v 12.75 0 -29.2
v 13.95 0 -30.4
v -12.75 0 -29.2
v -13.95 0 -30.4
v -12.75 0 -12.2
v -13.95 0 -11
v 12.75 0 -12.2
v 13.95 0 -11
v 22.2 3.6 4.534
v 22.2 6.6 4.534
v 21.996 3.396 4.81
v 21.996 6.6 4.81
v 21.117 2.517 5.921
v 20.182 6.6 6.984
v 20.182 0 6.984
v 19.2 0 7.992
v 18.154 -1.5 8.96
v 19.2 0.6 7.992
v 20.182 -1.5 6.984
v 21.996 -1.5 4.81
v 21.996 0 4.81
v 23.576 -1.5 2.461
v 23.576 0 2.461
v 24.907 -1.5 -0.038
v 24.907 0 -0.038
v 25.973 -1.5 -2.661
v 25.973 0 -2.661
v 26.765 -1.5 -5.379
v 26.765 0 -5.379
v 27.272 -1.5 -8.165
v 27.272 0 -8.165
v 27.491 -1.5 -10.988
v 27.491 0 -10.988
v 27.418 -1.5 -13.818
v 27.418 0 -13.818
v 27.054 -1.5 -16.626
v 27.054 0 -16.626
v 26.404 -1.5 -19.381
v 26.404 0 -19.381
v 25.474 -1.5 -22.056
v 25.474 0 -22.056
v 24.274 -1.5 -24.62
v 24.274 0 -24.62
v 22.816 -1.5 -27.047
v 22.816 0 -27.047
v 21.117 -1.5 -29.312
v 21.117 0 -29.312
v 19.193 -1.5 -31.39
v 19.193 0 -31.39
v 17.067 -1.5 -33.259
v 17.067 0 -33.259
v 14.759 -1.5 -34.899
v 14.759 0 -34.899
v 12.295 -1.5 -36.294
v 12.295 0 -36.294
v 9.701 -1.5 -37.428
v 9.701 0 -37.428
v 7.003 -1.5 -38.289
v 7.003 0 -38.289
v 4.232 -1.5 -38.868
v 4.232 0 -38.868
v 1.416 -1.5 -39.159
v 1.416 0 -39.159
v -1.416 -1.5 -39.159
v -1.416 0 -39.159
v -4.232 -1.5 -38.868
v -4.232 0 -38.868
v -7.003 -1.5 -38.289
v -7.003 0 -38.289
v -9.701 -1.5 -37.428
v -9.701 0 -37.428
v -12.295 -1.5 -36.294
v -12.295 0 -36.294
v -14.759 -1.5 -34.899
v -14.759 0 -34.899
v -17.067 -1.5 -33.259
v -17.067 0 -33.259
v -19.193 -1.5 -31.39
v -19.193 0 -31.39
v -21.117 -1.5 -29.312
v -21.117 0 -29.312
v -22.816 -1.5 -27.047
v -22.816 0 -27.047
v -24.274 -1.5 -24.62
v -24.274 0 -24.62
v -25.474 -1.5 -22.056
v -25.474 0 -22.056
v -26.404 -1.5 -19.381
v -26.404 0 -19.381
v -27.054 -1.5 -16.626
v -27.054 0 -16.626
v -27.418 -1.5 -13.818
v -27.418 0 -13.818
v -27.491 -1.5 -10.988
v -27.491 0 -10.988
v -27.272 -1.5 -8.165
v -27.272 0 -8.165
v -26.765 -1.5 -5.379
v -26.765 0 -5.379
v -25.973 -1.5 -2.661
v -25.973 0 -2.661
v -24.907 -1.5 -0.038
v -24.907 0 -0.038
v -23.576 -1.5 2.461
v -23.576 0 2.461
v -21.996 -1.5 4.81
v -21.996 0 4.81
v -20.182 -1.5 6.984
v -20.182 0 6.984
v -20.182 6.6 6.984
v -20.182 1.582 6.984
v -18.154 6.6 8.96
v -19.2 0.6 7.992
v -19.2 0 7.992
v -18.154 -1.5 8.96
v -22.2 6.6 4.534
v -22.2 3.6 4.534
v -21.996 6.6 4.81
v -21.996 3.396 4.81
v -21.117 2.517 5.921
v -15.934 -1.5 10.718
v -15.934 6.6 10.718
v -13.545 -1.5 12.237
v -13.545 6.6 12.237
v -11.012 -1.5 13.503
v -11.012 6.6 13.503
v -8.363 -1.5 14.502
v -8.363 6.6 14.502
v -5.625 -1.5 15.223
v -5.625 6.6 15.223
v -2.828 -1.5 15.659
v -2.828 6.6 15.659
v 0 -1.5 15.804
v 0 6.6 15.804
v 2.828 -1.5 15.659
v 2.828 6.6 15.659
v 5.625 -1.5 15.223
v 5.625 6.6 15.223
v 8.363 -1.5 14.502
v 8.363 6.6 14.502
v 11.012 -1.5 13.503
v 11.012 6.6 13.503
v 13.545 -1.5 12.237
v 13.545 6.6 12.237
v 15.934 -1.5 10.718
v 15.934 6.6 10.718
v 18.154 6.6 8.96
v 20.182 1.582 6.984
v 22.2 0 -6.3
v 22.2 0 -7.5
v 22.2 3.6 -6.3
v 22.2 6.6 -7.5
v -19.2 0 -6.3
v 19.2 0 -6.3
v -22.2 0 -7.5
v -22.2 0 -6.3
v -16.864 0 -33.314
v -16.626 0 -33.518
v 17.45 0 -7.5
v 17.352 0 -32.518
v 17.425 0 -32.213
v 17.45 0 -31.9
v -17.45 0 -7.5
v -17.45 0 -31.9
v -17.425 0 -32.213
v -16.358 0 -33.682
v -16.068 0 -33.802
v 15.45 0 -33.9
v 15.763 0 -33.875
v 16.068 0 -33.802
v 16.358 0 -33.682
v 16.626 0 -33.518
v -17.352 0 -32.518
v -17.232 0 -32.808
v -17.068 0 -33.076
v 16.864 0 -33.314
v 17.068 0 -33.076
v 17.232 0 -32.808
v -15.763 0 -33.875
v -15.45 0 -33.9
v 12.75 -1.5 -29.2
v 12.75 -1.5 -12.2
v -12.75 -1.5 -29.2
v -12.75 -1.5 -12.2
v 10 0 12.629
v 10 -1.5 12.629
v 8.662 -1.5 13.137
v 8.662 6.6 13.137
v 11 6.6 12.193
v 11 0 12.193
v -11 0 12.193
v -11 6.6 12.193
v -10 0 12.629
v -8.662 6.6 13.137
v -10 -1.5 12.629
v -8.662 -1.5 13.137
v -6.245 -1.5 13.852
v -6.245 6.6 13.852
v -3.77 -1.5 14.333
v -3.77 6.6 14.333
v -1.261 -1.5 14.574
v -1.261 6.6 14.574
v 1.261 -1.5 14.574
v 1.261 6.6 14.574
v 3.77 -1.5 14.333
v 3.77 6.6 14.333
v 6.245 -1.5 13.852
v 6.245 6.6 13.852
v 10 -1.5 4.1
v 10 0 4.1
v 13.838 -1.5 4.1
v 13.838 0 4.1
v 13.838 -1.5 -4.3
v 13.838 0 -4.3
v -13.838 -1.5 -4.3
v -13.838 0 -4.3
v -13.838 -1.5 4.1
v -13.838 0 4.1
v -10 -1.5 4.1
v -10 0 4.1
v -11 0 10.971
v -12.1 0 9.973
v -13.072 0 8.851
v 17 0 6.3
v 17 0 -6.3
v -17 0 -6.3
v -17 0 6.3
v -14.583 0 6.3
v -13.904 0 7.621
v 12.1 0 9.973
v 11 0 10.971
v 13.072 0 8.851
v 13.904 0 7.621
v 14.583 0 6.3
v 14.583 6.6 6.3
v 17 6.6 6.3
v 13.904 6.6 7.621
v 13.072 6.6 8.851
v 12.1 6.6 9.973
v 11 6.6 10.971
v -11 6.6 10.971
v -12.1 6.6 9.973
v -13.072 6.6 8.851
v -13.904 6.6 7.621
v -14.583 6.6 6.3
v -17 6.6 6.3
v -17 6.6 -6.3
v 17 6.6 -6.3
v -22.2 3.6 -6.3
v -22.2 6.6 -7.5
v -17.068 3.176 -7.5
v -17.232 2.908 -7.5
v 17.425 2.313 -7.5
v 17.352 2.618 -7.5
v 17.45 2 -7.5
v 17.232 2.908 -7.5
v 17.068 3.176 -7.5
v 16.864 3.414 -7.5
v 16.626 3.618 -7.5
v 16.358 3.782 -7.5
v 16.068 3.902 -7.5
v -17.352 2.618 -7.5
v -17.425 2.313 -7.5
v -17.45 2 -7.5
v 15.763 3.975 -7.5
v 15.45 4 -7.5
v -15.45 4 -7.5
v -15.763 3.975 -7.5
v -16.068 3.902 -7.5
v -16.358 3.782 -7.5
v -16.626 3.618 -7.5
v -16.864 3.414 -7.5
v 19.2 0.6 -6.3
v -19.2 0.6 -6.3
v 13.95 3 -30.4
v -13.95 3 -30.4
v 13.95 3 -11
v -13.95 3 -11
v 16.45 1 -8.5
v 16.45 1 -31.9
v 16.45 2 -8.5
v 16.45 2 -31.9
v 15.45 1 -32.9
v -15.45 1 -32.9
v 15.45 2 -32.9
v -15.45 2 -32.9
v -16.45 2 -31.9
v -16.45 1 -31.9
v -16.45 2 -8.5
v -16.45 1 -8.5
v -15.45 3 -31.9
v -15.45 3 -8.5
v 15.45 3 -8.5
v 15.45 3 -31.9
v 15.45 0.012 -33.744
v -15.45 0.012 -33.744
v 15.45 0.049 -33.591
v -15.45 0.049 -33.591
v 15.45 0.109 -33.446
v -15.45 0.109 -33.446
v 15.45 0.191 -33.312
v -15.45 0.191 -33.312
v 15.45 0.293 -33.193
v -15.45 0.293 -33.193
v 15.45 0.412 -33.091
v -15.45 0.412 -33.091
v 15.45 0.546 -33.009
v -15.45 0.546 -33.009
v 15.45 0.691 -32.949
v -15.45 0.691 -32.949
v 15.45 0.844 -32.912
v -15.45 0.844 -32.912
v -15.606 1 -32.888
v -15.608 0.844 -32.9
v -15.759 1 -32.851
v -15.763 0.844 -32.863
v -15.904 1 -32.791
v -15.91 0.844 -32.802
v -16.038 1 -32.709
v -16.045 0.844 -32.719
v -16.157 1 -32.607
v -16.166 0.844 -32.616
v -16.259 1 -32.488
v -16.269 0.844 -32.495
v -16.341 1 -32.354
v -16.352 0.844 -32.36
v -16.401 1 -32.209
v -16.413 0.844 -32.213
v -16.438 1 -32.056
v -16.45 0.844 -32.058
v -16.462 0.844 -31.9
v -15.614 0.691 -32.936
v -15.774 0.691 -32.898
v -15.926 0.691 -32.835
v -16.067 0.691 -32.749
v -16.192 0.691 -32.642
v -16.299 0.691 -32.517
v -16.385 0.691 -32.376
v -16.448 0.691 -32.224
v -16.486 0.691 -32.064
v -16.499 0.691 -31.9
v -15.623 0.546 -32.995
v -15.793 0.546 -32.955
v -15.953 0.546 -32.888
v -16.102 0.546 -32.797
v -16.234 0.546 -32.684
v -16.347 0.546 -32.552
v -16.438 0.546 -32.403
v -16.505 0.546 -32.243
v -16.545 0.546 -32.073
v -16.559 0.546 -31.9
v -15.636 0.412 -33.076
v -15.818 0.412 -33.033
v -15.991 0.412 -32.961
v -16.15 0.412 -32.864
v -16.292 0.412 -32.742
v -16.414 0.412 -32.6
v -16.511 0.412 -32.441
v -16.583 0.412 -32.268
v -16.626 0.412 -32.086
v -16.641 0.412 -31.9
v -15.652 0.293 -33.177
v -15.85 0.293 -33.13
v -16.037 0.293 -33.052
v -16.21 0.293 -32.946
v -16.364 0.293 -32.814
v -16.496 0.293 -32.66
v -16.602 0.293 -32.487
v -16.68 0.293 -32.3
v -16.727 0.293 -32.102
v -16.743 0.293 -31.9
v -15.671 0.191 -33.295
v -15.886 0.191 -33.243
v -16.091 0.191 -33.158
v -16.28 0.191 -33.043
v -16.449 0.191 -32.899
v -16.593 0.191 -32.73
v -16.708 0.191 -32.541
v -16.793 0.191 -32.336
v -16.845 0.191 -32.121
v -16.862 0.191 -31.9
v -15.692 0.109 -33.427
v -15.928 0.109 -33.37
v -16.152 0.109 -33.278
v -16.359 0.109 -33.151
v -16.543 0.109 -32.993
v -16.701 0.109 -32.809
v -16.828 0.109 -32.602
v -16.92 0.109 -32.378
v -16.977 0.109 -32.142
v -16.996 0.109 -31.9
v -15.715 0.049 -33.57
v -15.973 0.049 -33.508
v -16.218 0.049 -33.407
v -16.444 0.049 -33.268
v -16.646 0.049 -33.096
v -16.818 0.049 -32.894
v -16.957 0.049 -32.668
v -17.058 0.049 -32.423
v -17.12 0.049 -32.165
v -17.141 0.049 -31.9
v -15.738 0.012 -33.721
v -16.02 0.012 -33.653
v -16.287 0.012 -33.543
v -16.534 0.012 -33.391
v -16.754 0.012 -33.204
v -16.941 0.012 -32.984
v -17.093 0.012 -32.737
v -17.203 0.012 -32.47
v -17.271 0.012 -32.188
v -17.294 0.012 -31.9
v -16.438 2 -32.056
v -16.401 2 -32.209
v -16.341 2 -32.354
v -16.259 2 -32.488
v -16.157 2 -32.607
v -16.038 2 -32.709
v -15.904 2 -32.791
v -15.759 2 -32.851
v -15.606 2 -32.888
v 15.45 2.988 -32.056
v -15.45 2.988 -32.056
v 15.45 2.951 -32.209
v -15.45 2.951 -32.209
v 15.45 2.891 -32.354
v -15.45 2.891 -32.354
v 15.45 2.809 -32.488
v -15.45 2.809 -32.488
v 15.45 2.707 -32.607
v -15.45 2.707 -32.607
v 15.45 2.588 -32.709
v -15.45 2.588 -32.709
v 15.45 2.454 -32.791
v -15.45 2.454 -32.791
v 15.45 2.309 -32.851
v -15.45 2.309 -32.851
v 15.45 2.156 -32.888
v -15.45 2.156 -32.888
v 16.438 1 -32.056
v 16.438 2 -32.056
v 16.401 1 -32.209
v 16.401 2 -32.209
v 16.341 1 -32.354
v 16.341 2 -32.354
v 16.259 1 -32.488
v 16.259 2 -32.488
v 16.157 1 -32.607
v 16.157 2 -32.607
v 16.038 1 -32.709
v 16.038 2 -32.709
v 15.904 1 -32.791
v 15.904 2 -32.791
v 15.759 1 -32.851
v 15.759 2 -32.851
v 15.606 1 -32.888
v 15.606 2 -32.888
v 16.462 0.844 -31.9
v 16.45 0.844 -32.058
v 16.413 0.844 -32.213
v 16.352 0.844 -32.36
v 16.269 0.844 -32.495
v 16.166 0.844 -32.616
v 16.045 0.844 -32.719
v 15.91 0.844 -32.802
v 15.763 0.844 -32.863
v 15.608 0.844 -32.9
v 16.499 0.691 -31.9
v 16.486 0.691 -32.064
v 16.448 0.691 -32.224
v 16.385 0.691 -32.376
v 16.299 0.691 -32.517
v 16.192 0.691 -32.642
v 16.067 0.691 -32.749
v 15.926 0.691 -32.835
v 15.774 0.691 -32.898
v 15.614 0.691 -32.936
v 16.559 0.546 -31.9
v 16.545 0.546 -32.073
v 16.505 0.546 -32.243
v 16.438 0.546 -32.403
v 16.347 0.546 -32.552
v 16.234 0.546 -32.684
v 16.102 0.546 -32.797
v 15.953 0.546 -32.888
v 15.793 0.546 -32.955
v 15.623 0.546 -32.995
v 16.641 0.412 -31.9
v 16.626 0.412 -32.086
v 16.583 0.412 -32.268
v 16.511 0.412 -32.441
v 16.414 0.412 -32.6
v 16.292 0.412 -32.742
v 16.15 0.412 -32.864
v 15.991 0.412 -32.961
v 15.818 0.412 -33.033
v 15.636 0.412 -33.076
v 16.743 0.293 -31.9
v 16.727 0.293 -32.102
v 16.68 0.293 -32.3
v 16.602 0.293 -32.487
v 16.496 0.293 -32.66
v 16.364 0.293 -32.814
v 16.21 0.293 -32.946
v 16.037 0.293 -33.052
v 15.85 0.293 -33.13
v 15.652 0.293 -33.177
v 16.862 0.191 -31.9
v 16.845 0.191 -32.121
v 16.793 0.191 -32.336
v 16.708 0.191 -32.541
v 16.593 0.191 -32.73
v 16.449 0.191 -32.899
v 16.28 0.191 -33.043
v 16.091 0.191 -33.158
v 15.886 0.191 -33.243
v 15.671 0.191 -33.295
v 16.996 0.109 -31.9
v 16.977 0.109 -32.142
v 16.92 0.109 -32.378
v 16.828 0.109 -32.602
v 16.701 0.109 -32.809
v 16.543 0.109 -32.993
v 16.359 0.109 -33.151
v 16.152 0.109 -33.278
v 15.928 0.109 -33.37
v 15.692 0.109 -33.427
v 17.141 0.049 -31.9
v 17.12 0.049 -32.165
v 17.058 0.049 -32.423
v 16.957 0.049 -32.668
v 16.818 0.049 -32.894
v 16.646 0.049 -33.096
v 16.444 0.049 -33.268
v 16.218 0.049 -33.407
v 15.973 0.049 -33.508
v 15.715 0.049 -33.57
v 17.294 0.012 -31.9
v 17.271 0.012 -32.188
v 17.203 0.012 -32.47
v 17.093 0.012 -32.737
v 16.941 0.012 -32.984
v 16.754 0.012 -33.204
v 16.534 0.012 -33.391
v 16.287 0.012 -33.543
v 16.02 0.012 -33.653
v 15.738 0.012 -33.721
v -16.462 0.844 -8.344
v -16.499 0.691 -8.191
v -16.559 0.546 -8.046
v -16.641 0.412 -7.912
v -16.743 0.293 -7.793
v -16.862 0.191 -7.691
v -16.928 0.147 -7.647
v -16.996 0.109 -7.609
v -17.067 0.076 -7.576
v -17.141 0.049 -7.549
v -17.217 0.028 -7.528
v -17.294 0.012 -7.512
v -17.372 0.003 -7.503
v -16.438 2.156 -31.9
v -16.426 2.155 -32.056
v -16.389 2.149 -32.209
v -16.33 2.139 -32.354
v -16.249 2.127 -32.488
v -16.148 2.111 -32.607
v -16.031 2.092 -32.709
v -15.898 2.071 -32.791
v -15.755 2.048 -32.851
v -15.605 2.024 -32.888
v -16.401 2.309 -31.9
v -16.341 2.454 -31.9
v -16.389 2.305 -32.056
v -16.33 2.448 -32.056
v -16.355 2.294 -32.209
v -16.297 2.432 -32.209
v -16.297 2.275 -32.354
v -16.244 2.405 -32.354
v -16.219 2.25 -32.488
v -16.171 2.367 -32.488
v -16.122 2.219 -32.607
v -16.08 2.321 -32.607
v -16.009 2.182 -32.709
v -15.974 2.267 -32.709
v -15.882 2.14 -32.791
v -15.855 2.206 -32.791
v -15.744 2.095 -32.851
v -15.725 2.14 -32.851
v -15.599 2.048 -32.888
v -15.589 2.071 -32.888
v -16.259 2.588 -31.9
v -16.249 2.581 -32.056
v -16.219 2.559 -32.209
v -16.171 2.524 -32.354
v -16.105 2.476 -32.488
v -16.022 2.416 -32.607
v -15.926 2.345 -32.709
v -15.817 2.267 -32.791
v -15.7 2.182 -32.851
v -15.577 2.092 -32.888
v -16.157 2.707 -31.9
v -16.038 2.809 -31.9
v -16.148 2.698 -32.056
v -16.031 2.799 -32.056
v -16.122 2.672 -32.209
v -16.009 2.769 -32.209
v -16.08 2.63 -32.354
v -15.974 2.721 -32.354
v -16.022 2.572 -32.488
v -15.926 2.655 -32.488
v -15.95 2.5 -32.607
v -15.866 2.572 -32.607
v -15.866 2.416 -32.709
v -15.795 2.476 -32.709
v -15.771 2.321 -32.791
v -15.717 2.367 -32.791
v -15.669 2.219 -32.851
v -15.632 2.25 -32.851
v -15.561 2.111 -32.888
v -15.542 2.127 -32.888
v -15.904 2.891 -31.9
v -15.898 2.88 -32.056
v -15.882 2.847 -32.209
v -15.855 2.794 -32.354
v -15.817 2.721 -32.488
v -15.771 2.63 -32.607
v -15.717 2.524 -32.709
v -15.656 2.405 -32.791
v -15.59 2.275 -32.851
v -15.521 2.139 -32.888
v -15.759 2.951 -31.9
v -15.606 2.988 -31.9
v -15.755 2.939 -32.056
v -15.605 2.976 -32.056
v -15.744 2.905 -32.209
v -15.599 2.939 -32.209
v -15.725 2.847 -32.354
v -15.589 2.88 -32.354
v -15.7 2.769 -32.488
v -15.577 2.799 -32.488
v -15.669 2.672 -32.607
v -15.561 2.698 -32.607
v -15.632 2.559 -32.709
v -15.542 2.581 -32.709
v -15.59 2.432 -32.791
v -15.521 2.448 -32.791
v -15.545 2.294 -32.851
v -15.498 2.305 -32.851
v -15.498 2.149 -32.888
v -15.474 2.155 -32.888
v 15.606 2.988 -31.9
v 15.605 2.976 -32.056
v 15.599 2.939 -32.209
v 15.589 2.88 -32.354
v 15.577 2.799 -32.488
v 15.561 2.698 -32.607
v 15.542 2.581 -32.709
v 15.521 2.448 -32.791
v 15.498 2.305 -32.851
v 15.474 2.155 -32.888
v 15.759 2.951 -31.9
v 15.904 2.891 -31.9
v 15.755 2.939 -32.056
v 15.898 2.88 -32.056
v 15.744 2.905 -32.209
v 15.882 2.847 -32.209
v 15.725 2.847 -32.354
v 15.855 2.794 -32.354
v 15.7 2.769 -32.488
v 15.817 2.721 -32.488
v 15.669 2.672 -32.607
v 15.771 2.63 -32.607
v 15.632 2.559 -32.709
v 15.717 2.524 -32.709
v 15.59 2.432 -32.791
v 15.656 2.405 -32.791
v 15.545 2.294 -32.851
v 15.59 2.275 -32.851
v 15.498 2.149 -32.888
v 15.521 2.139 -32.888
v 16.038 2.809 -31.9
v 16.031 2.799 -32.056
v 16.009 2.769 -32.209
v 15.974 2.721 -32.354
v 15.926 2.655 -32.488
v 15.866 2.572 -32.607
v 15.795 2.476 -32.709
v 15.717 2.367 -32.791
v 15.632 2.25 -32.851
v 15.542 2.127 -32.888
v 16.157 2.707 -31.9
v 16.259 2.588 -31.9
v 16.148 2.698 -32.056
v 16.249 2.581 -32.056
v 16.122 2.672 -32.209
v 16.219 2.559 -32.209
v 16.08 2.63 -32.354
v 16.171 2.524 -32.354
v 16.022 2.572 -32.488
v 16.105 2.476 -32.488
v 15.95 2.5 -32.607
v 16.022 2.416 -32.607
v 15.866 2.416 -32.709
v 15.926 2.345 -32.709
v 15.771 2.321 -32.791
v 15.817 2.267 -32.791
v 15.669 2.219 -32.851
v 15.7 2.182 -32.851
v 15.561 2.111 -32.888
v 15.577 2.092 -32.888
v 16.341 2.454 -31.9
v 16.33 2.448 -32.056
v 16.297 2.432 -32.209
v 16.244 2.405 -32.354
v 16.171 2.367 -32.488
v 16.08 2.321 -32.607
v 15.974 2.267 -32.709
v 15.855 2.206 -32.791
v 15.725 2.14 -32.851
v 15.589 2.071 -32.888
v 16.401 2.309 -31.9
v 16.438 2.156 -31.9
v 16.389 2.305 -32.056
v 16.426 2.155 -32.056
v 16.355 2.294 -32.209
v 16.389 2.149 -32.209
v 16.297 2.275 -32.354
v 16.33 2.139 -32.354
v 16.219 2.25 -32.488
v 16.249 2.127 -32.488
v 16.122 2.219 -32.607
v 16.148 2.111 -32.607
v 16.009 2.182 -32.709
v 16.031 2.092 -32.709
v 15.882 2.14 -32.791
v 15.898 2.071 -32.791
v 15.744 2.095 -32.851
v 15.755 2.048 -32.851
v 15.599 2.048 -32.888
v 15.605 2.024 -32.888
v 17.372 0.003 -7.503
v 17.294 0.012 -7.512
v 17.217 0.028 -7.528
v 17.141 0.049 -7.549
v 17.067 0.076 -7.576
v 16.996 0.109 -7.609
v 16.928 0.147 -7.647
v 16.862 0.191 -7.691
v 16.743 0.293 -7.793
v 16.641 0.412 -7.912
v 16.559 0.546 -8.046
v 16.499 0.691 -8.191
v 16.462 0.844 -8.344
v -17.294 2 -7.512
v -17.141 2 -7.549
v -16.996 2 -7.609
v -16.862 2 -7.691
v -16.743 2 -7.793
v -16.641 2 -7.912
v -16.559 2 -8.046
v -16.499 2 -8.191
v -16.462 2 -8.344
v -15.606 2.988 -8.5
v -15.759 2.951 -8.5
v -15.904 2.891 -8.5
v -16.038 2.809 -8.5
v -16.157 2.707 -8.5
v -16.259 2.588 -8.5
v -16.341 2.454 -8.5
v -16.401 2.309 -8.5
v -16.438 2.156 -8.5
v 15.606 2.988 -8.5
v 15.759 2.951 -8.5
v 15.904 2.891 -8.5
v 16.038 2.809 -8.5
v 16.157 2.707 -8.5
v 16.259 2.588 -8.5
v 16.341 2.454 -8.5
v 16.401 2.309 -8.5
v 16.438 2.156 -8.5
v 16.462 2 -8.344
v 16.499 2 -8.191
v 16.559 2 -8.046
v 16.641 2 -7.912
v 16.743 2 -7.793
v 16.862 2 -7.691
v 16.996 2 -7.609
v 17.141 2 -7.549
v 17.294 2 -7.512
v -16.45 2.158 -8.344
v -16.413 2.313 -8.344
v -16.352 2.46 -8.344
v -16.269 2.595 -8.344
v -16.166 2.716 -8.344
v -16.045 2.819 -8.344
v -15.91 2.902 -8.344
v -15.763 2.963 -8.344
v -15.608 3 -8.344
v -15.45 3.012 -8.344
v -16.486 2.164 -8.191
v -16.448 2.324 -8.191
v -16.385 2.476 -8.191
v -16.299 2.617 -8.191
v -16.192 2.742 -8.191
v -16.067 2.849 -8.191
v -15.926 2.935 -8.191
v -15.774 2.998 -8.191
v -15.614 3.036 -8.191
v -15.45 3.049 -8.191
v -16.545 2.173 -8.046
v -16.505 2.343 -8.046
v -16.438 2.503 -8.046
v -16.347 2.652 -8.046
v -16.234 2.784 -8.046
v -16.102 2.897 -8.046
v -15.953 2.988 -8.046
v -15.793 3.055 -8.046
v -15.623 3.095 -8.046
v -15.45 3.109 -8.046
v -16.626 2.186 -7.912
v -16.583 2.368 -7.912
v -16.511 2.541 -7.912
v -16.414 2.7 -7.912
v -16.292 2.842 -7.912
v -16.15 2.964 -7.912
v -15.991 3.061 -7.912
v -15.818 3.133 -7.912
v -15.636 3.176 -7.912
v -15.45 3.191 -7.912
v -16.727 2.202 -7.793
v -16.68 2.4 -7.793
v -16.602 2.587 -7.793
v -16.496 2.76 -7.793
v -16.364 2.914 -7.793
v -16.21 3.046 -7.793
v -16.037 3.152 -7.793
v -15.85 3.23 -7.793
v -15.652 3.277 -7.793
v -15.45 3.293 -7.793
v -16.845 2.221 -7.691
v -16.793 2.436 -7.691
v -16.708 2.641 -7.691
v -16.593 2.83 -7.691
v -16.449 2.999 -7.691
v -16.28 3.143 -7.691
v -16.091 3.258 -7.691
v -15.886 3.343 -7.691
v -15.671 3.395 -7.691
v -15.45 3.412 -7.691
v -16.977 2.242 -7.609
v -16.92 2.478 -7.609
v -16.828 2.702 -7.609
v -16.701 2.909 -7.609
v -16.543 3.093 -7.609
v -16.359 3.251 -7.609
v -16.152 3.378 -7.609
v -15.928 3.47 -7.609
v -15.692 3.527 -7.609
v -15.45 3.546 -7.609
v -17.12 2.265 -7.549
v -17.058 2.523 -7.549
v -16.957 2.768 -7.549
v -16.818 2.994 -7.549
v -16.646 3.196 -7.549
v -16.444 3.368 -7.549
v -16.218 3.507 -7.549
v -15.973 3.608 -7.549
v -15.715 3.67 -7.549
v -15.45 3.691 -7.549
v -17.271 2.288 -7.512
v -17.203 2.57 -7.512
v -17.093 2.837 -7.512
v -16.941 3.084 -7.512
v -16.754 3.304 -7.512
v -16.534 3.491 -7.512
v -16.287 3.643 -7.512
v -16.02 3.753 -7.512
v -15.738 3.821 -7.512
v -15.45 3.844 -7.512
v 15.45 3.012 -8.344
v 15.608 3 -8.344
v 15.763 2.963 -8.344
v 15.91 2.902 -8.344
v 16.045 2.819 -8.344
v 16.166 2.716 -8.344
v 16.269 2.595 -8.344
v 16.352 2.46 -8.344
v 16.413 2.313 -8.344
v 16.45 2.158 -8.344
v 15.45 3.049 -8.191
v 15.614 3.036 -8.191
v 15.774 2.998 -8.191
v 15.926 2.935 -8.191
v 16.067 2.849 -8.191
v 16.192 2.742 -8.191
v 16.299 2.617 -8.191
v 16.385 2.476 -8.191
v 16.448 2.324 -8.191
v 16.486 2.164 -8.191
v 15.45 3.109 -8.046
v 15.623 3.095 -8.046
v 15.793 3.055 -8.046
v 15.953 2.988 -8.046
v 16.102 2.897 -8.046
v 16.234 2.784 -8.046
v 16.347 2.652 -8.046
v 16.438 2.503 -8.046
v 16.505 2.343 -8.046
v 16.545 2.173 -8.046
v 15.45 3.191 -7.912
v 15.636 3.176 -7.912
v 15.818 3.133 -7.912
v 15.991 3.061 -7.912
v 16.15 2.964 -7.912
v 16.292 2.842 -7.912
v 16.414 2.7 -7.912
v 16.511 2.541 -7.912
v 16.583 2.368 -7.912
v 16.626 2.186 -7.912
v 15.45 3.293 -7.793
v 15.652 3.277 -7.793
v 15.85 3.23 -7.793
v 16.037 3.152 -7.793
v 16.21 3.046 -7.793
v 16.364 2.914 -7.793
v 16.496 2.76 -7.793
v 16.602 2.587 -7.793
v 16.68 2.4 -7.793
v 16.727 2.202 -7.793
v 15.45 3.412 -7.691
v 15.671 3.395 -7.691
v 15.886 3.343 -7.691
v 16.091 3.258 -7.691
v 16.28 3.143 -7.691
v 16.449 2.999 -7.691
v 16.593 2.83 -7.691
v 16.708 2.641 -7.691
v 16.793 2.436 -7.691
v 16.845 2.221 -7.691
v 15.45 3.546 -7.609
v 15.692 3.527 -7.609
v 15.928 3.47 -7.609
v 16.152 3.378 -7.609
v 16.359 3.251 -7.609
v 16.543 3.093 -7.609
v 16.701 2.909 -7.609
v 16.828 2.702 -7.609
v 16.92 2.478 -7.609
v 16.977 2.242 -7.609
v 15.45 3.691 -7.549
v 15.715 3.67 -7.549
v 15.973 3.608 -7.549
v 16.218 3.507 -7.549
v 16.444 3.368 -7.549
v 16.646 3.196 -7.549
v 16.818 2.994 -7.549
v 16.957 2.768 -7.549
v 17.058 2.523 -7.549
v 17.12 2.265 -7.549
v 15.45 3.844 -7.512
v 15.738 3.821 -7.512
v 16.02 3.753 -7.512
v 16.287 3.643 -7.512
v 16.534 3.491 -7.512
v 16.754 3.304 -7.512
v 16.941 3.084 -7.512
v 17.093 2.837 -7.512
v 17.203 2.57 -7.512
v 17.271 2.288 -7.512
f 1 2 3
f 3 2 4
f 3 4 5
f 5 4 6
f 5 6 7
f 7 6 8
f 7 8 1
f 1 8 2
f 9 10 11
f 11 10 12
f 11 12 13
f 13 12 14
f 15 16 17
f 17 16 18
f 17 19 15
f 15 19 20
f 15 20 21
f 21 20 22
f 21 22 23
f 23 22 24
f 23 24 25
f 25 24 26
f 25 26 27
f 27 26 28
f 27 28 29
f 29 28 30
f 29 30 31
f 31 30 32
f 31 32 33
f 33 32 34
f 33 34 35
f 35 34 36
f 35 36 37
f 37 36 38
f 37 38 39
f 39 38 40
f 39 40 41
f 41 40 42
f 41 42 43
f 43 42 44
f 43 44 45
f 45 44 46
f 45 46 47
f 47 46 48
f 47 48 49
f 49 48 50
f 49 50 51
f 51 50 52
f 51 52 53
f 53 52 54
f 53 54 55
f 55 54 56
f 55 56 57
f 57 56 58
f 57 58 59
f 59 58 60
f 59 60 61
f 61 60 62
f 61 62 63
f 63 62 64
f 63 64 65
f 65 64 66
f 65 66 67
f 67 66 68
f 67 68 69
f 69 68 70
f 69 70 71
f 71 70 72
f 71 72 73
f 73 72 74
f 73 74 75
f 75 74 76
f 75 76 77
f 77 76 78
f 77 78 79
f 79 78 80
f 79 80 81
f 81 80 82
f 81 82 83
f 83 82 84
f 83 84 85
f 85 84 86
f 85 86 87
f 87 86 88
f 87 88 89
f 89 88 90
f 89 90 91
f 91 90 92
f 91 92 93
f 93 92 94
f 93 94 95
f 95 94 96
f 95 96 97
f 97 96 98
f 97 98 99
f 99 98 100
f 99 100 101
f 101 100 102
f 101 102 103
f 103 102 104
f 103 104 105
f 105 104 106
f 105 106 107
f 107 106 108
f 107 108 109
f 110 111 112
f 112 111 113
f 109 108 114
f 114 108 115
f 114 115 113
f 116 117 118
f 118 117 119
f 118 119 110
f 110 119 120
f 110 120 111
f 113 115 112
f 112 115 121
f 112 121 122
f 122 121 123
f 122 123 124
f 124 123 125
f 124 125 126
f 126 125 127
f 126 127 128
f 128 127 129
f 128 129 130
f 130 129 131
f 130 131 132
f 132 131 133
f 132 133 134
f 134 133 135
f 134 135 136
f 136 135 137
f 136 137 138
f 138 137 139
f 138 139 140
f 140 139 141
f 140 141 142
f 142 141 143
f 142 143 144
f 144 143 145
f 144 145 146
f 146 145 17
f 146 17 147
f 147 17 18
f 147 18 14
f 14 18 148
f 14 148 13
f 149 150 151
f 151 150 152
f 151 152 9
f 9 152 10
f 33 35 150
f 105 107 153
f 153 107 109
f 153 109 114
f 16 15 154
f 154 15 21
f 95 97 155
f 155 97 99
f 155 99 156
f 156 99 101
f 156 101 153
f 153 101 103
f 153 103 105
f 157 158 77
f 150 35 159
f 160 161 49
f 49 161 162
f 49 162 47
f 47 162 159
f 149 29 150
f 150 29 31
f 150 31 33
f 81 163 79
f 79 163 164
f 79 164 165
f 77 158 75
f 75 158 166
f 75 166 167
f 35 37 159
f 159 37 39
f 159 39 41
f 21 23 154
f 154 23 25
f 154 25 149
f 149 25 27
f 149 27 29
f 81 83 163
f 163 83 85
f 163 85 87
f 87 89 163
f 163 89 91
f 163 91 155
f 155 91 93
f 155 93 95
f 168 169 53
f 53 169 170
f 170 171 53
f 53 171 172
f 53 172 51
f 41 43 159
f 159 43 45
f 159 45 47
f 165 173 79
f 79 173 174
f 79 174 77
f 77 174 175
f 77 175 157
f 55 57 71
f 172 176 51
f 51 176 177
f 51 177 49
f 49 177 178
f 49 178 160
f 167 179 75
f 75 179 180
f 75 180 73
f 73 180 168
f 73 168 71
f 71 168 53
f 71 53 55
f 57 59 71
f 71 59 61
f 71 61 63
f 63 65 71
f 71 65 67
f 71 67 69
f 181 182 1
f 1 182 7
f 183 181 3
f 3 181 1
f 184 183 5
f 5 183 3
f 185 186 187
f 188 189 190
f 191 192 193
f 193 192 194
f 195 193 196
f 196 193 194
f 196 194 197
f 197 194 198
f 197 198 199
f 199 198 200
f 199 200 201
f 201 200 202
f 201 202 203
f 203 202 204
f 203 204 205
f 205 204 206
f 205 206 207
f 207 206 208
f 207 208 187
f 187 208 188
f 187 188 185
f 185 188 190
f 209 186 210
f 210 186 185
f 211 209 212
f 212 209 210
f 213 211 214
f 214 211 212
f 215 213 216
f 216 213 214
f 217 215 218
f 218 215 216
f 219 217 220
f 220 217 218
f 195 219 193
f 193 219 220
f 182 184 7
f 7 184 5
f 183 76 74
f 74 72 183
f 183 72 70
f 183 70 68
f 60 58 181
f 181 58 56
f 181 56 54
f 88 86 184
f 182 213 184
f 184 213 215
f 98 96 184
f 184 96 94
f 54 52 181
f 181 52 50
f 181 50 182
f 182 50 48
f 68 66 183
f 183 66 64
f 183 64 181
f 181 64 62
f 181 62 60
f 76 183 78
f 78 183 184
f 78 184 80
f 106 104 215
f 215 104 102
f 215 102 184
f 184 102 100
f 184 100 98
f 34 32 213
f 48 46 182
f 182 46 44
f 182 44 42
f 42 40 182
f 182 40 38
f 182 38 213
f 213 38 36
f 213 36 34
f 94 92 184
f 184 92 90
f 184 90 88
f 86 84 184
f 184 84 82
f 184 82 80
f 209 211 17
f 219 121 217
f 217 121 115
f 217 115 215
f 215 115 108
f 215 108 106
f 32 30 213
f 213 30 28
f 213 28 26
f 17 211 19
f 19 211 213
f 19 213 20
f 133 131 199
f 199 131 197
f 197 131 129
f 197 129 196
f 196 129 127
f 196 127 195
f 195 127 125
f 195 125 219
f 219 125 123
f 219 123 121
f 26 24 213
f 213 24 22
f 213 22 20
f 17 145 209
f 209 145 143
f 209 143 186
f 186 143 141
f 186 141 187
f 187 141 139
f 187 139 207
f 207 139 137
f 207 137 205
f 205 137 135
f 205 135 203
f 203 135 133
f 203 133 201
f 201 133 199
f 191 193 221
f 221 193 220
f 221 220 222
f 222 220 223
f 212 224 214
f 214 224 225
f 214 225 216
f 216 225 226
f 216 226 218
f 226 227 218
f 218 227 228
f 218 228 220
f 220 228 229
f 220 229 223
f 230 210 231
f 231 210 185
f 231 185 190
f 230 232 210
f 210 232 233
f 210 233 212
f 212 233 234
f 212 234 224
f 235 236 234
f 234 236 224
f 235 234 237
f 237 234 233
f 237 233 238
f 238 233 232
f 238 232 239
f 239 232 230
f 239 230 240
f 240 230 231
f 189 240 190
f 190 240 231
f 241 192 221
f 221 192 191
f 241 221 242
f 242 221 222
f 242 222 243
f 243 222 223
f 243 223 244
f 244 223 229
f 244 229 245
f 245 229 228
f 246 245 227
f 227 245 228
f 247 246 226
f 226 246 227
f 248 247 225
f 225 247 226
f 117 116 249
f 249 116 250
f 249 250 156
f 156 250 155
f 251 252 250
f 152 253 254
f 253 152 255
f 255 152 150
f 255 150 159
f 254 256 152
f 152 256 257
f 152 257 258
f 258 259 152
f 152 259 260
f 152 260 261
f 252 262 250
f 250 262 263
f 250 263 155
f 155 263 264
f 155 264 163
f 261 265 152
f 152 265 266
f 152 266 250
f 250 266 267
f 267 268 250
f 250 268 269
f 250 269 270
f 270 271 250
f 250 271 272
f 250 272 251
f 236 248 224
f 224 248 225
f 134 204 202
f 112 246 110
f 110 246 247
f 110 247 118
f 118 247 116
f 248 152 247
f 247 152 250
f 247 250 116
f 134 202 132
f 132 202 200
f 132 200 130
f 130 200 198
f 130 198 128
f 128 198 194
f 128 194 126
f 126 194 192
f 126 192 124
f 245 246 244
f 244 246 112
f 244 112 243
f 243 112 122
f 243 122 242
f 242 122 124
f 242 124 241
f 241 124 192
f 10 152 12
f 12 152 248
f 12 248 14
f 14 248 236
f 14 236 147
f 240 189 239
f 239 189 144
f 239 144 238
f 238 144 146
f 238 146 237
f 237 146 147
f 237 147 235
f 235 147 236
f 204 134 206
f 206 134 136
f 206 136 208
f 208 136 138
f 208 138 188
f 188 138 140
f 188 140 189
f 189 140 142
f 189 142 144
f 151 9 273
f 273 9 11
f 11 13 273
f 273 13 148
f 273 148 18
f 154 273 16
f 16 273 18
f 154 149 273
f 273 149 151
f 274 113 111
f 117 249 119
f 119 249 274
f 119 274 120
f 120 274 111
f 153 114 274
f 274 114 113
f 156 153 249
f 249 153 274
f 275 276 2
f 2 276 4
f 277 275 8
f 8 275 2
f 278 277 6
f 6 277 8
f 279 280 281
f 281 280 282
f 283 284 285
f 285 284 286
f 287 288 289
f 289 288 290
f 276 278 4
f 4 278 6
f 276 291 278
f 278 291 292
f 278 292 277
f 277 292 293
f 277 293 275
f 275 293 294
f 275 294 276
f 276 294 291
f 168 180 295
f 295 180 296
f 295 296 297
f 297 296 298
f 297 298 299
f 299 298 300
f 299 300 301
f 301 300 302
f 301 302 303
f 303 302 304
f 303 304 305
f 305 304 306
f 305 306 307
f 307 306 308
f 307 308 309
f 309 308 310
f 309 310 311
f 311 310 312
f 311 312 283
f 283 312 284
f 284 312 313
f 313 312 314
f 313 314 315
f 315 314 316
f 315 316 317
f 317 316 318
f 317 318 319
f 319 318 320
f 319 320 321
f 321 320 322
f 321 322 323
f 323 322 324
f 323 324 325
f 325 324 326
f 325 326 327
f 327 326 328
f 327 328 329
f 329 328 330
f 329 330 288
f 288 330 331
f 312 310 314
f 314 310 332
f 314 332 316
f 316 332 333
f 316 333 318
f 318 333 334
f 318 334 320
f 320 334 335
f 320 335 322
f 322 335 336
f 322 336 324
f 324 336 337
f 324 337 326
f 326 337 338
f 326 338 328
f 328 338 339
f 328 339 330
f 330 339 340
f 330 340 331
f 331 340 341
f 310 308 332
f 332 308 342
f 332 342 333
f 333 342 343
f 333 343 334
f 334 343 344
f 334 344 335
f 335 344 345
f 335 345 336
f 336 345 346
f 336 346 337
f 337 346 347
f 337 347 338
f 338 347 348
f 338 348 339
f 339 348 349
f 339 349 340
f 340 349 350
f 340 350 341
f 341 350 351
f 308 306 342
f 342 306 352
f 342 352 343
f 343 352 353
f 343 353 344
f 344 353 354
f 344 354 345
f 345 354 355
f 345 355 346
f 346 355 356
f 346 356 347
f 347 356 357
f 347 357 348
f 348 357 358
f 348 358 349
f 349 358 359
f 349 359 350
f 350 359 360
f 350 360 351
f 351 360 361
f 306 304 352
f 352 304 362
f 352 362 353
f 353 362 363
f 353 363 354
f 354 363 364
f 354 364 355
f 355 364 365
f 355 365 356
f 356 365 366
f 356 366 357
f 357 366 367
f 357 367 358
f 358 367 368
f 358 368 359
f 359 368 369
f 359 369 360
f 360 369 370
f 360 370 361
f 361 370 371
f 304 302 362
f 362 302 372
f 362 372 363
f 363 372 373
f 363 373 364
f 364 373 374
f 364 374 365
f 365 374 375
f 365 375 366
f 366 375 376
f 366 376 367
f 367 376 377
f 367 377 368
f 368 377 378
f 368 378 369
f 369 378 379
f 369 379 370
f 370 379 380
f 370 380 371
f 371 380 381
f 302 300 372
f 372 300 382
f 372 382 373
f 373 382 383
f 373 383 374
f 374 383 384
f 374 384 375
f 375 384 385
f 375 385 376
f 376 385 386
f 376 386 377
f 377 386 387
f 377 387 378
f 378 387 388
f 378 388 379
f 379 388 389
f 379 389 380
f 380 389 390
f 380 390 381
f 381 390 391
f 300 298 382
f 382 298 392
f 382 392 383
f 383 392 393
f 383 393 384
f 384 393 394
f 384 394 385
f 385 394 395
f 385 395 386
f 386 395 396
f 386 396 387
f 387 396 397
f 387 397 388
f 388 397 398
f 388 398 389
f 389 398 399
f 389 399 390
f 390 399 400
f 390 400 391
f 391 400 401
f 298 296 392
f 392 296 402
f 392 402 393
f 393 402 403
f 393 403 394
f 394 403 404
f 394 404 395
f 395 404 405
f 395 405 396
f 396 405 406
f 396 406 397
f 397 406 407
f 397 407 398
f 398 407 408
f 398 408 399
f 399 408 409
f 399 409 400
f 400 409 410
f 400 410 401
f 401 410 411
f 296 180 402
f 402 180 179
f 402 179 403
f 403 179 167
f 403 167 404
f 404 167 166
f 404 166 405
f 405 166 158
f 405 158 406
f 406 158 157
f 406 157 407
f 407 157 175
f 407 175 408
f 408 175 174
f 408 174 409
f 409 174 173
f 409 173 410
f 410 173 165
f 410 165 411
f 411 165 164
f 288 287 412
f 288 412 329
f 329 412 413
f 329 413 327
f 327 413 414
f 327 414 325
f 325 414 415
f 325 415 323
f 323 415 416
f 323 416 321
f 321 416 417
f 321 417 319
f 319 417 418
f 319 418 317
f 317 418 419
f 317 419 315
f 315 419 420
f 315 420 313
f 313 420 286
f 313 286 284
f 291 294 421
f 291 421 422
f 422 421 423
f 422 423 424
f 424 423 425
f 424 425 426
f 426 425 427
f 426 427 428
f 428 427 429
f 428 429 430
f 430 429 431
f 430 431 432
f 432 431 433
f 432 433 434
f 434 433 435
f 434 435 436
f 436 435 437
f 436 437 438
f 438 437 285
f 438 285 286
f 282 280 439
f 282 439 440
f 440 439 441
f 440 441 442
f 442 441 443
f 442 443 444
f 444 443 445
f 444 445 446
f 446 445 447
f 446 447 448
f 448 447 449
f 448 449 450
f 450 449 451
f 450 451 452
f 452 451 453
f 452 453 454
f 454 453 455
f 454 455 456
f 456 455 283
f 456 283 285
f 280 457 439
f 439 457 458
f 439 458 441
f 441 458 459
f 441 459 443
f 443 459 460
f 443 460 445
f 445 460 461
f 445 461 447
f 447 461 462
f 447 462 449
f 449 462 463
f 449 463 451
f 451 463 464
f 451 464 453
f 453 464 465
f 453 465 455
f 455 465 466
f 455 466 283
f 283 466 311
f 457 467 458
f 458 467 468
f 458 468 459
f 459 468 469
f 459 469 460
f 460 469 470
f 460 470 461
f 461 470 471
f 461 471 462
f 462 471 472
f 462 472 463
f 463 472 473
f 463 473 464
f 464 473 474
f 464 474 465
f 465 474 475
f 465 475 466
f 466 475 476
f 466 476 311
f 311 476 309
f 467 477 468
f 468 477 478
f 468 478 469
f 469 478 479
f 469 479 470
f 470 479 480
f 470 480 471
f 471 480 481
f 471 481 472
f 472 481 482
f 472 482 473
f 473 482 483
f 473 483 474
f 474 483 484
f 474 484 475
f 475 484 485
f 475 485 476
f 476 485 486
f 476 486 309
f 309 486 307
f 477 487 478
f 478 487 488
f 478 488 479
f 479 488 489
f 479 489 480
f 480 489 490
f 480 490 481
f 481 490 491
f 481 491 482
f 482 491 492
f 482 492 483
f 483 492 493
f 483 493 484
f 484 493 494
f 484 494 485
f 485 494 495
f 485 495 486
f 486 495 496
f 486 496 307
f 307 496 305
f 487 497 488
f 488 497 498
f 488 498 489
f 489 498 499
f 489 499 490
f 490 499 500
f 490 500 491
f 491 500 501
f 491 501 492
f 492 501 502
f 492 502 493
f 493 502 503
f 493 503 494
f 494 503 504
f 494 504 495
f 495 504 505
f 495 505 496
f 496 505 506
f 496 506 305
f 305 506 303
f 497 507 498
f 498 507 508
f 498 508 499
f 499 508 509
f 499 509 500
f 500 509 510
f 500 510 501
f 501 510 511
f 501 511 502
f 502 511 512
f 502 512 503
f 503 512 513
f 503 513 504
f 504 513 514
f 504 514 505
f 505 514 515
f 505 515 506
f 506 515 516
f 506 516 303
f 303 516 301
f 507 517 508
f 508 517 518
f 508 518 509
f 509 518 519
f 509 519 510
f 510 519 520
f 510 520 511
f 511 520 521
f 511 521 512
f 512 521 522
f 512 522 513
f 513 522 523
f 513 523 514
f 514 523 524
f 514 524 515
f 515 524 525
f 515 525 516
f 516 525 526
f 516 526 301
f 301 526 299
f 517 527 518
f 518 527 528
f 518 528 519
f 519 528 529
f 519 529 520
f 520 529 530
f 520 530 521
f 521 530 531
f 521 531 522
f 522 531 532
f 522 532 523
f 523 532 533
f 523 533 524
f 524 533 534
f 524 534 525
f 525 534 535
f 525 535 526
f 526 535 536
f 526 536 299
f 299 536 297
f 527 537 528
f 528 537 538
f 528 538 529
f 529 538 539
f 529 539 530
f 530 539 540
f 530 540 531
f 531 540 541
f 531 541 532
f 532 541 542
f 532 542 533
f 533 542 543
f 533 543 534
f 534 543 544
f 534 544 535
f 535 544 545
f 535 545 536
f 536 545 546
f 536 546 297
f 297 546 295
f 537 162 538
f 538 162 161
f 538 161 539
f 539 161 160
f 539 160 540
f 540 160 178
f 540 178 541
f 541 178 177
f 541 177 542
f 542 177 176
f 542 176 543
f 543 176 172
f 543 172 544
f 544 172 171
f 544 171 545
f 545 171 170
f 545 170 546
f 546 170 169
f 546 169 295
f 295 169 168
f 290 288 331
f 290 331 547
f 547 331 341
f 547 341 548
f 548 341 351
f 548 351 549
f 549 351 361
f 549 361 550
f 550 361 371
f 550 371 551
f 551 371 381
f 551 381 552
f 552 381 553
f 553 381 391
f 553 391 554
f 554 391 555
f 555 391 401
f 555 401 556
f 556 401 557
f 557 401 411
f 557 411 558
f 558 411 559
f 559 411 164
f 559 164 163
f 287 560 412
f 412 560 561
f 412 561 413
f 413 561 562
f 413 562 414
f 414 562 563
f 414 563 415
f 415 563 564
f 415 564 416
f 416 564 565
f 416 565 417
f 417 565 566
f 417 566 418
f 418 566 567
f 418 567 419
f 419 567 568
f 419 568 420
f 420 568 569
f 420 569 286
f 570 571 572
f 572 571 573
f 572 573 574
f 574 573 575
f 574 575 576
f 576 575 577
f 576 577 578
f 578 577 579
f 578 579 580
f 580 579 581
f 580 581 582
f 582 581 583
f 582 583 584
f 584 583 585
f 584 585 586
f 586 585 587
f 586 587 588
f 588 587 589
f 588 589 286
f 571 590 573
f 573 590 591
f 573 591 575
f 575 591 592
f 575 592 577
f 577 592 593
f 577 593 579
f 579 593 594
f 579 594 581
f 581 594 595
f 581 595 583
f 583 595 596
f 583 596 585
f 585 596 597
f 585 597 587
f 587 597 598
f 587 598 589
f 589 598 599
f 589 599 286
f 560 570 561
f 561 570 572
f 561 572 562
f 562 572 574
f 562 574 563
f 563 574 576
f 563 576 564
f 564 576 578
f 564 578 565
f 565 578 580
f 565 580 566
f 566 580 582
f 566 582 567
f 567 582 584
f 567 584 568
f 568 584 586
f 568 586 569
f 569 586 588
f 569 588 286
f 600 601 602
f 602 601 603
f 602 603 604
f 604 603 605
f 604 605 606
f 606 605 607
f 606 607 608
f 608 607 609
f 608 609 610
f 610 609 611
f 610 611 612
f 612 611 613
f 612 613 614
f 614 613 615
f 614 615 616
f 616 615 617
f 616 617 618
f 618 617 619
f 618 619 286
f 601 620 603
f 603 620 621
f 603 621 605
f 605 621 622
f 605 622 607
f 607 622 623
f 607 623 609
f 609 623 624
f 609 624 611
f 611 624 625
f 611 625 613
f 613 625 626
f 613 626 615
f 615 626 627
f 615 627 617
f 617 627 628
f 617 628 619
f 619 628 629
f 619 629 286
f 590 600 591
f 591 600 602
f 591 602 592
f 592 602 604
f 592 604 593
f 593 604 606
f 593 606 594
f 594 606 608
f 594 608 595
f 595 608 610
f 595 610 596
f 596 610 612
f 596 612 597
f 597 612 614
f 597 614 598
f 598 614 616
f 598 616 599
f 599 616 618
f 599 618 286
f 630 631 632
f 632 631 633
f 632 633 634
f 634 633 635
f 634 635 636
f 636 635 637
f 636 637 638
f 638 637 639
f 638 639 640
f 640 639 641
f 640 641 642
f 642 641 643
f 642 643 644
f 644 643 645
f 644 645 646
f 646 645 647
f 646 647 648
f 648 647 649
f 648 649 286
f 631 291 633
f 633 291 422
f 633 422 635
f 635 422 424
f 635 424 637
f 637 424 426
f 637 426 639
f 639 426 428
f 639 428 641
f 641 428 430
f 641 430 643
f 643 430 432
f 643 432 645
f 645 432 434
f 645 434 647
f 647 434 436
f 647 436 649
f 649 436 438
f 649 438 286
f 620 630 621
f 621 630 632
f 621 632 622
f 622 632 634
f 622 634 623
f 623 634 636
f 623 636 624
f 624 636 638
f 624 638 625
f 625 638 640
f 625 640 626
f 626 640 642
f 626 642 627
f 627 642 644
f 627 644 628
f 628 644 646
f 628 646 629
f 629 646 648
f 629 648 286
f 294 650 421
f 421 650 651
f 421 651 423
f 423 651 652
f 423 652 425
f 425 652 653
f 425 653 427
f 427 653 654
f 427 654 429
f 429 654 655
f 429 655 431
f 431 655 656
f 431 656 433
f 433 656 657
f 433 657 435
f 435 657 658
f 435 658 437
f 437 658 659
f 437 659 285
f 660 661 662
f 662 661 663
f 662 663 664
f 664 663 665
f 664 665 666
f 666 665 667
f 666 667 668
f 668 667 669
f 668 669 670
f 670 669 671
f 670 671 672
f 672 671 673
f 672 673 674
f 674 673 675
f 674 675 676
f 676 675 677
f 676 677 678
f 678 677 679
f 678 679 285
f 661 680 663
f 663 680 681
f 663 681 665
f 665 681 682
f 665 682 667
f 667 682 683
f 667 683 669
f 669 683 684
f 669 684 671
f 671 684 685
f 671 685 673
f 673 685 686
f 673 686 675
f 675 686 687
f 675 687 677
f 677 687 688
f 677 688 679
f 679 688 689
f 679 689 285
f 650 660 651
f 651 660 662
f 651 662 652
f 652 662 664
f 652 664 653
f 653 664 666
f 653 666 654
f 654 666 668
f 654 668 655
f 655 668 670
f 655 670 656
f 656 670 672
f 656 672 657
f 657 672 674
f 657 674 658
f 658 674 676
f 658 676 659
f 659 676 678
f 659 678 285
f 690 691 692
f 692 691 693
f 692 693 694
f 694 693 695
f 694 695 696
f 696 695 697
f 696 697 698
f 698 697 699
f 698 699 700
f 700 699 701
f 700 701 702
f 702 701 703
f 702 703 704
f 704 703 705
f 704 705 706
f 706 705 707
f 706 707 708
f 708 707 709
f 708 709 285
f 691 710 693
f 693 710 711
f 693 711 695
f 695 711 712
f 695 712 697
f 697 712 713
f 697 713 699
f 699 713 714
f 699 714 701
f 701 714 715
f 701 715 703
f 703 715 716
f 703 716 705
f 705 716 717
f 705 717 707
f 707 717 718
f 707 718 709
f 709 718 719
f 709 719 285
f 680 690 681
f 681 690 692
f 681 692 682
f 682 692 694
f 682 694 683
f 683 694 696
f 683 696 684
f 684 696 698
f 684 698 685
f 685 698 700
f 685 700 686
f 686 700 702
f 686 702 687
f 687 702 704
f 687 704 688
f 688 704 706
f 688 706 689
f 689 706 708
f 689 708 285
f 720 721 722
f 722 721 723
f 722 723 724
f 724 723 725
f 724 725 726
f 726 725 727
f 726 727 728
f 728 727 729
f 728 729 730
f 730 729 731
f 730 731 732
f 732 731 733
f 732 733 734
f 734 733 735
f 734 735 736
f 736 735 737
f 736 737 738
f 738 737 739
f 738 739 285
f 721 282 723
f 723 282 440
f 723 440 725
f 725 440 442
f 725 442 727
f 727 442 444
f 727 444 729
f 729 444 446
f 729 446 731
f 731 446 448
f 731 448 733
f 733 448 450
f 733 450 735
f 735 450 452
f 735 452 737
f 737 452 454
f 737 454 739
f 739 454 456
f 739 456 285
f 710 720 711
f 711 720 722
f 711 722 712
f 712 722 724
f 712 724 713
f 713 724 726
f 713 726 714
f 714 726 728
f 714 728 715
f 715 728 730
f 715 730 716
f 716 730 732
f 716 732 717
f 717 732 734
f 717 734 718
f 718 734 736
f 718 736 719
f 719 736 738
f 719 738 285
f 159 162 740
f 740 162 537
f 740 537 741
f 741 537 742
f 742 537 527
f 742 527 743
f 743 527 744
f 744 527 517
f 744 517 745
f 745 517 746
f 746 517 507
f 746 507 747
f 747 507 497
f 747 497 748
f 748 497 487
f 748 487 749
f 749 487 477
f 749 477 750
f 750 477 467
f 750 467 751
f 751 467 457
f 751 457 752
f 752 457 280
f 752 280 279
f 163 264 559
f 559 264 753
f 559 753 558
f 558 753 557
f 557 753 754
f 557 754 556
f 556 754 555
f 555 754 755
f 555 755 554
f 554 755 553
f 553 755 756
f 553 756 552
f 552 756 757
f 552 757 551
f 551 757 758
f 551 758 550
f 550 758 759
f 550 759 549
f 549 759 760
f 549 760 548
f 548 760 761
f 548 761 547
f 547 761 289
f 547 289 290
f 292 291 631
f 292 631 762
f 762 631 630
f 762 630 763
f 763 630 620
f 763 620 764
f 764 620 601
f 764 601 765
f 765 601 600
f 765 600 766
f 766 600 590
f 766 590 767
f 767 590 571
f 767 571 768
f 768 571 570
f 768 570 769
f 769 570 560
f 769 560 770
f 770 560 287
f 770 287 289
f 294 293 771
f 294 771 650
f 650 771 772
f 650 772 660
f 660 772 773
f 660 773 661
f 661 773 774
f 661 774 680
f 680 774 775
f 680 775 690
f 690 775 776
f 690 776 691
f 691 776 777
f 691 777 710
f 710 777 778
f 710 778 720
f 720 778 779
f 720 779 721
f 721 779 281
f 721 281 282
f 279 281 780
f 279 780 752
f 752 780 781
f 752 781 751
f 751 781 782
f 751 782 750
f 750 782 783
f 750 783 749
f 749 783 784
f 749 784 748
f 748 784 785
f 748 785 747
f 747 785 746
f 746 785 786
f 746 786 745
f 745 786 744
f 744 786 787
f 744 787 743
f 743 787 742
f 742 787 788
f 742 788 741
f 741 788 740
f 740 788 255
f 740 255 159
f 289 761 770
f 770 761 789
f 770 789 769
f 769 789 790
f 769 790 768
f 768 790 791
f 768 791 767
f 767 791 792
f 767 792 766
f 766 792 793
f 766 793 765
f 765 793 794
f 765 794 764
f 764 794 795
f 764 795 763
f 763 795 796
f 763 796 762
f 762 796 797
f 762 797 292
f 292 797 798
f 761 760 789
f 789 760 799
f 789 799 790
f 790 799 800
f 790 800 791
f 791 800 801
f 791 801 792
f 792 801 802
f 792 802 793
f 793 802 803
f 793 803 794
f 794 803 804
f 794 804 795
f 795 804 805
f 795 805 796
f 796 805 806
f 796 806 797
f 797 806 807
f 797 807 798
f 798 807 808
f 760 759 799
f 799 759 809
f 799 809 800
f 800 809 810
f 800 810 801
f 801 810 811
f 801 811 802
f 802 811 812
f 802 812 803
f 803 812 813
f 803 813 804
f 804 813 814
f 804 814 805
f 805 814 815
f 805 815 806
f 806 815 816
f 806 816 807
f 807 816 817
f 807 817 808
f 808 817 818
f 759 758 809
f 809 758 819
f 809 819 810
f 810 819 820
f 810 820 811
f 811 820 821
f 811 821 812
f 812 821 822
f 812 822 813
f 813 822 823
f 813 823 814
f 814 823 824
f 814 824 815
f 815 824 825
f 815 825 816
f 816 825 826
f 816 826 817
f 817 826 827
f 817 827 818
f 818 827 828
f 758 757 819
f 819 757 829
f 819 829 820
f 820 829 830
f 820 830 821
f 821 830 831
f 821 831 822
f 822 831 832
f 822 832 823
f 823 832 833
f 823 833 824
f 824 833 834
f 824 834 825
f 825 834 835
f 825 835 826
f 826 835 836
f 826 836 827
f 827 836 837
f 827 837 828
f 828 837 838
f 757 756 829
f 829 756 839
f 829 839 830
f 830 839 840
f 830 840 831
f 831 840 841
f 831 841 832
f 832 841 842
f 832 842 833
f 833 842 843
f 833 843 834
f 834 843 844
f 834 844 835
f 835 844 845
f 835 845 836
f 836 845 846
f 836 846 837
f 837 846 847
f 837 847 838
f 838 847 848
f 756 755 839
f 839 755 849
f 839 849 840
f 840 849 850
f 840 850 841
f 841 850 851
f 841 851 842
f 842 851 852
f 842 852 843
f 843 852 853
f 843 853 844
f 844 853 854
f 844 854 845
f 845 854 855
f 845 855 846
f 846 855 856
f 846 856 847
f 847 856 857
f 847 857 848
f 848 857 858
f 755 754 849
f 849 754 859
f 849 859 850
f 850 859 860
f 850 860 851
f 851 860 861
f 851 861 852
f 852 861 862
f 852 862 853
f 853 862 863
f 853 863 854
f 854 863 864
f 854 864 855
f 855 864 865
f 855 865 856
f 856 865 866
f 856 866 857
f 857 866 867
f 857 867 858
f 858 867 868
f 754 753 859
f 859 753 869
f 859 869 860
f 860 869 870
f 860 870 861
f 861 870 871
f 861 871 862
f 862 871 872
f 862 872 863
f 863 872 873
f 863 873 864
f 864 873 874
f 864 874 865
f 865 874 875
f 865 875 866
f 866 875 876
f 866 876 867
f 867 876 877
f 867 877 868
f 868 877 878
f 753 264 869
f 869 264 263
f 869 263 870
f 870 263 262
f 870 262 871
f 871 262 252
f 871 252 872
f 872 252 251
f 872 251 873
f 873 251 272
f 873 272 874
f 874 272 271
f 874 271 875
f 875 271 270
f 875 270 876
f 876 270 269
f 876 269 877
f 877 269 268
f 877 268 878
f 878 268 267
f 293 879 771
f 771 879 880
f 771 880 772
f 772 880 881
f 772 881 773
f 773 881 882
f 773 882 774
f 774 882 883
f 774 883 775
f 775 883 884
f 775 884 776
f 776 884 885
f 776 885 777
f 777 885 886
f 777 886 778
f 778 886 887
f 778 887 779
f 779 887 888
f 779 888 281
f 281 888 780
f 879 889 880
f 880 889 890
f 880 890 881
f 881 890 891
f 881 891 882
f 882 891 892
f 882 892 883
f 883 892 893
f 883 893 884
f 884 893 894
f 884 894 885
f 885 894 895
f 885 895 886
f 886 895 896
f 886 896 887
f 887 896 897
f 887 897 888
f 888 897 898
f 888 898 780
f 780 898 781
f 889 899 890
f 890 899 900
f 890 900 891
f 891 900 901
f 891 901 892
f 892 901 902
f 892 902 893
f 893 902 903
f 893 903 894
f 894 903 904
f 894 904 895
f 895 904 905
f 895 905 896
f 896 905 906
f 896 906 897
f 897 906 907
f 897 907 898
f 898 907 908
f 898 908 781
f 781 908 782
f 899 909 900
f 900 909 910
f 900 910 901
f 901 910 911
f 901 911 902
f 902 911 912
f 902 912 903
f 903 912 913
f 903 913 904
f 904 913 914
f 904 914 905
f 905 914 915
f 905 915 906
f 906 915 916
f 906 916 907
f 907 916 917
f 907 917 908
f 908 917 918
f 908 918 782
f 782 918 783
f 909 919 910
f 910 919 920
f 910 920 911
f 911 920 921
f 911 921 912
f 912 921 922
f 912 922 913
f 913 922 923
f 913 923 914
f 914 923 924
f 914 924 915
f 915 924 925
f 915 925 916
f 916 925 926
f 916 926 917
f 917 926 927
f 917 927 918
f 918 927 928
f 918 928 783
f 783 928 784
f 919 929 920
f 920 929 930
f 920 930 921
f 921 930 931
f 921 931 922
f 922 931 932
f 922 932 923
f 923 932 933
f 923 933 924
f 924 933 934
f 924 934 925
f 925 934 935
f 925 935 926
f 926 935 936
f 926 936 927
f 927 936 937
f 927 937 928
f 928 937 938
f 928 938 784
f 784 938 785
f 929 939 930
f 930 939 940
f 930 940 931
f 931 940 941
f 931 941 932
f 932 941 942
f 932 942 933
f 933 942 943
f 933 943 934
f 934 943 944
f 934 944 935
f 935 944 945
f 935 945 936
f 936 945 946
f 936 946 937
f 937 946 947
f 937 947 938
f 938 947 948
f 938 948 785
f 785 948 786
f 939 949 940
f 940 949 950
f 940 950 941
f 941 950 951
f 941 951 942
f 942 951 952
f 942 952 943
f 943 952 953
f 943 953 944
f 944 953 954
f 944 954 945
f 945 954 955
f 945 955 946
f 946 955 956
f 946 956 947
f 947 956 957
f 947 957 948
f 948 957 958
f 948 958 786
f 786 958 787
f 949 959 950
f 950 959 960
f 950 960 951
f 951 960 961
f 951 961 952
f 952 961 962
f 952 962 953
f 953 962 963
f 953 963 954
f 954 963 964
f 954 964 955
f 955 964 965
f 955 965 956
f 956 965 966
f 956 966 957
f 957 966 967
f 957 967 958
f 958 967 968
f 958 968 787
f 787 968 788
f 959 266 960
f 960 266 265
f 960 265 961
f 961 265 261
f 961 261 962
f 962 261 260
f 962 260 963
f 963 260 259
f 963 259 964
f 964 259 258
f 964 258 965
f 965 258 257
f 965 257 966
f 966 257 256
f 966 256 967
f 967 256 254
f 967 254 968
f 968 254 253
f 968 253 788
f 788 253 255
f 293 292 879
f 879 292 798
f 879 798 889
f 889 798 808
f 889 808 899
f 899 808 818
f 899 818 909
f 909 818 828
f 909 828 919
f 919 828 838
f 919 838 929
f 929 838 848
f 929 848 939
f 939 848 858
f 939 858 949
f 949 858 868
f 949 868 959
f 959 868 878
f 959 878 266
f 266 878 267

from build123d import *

# Parameters (mm, degrees)
SKETCH1_R               = 27.5
SKETCH1_W               = 25.5
SKETCH1_H               = 17
BOSS_EXTRUDE1_DEPTH     = 1.5
BOSS_EXTRUDE2_START     = 6.6
BOSS_EXTRUDE2_DEPTH     = 6.6
CUT_EXTRUDE1_REACH      = 45.381
CUT_EXTRUDE1_END_RADIUS = 27.5
SKETCH1_5_W             = 32.9
SKETCH1_5_H             = 25.4
SKETCH1_5_W_2           = 27.9
SKETCH1_5_H_2           = 19.4
BOSS_EXTRUDE3_DEPTH     = 3
FILLET1_R               = 1


with BuildPart() as part:
    # Sketch1 → Boss-Extrude1 (new body)
    with BuildSketch(Plane(origin=(0, 0, 0), x_dir=(1, 0, 0), z_dir=(0, 1, 0))):
        with Locations(Location((0, 11.695639977, 0), (0, 0, 270))):
            Circle(SKETCH1_R)
        with BuildLine():
            Line((10, -4.1), (10, -12.629038849))
            ThreePointArc((10, -12.629038849), (0, -14.604360023), (-10, -12.629038849))
            Line((-10, -12.629038849), (-10, -4.1))
            Line((-10, -4.1), (-13.837653888, -4.1))
            Line((-13.837653888, -4.1), (-13.837653888, 4.3))
            Line((-13.837653888, 4.3), (13.837653888, 4.3))
            Line((13.837653888, 4.3), (13.837653888, -4.1))
            Line((13.837653888, -4.1), (10, -4.1))
        make_face(mode=Mode.SUBTRACT)
        with Locations((0, 20.7)):
            Rectangle(SKETCH1_W, SKETCH1_H, mode=Mode.SUBTRACT)
    extrude(amount=-BOSS_EXTRUDE1_DEPTH)

    # Sketch1<3> → Boss-Extrude2 (add)
    with BuildSketch(Plane(origin=(0, 0, 0), x_dir=(1, 0, 0), z_dir=(0, 1, 0)).offset(BOSS_EXTRUDE2_START)):
        with BuildLine():
            Line((-16.45, 7.5), (-22.2, 7.5))
            Line((-22.2, 7.5), (-22.2, -4.534270682))
            ThreePointArc((-22.2, -4.534270682), (0, -15.804360023), (22.2, -4.534270682))
            Line((22.2, -4.534270682), (22.2, 7.5))
            Line((22.2, 7.5), (16.45, 7.5))
            Line((16.45, 7.5), (-16.45, 7.5))
        make_face()
        with BuildLine():
            Line((-17, -6.3), (-17, 6.3))
            Line((-17, 6.3), (17, 6.3))
            Line((17, 6.3), (17, -6.3))
            Line((17, -6.3), (14.582906959, -6.3))
            ThreePointArc((14.582906959, -6.3), (13.072174848, -8.850843183), (11, -10.971032764))
            Line((11, -10.971032764), (11, -12.193478885))
            ThreePointArc((11, -12.193478885), (10.502258239, -12.416443547), (10, -12.629038849))
            ThreePointArc((10, -12.629038849), (0, -14.604360023), (-10, -12.629038849))
            ThreePointArc((-10, -12.629038849), (-10.502258239, -12.416443547), (-11, -12.193478885))
            Line((-11, -12.193478885), (-11, -10.971032764))
            ThreePointArc((-11, -10.971032764), (-13.072174848, -8.850843183), (-14.582906959, -6.3))
            Line((-14.582906959, -6.3), (-17, -6.3))
        make_face(mode=Mode.SUBTRACT)
    extrude(amount=-BOSS_EXTRUDE2_DEPTH)

    # Cut-Extrude1: up to this cylinder (the profile starts inside it)
    cut_extrude1_end = Plane(origin=(0, 1.228571, -11.695639977), z_dir=(0, 1, 0)) * Cylinder(CUT_EXTRUDE1_END_RADIUS, 146.762, mode=Mode.PRIVATE)
    # Sketch2 → Cut-Extrude1 (cut, up to the surface)
    with BuildSketch(Plane.XY.offset(-6.3), mode=Mode.PRIVATE) as cut_extrude1_sk1:
        Polygon((-22.2, 3.6), (-19.2, 0.6), (-19.2, 0), (-22.2, 0), align=None)
    cut_extrude1_tool1 = extrude(cut_extrude1_sk1.sketch, amount=CUT_EXTRUDE1_REACH, mode=Mode.PRIVATE) & cut_extrude1_end
    add(cut_extrude1_tool1.solids().sort_by_distance((-21.057143, 1.228571, -6.3))[0], mode=Mode.SUBTRACT)
    # Sketch2 → Cut-Extrude1 (cut, up to the surface)
    with BuildSketch(Plane.XY.offset(-6.3), mode=Mode.PRIVATE) as cut_extrude1_sk2:
        Polygon((19.2, 0.6), (19.2, 0), (22.2, 0), (22.2, 3.6), align=None)
    cut_extrude1_tool2 = extrude(cut_extrude1_sk2.sketch, amount=CUT_EXTRUDE1_REACH, mode=Mode.PRIVATE) & cut_extrude1_end
    add(cut_extrude1_tool2.solids().sort_by_distance((21.057143, 1.228571, -6.3))[0], mode=Mode.SUBTRACT)

    # Sketch1<5> → Boss-Extrude3 (add)
    with BuildSketch(Plane(origin=(0, 0, 0), x_dir=(1, 0, 0), z_dir=(0, 1, 0))):
        with Locations((0, 20.2)):
            Rectangle(SKETCH1_5_W, SKETCH1_5_H)
        with Locations((0, 20.7)):
            Rectangle(SKETCH1_5_W_2, SKETCH1_5_H_2, mode=Mode.SUBTRACT)
    extrude(amount=BOSS_EXTRUDE3_DEPTH)

    # Fillet1
    fillet1_edges = [part.edges().sort_by_distance(p)[0] for p in [
        (16.45, 3, -20.2),
        (16.45, 1.5, -7.5),
        (0, 3, -32.9),
        (16.45, 1.5, -32.9),
        (-16.45, 0, -20.2),
        (-16.45, 1.5, -32.9),
        (-16.45, 1.5, -7.5),
        (-16.45, 3, -20.2),
        (0, 3, -7.5),
        (16.45, 0, -20.2),
        (0, 0, -32.9),
    ]]
    fillet(fillet1_edges, radius=FILLET1_R)


solid = part.part
